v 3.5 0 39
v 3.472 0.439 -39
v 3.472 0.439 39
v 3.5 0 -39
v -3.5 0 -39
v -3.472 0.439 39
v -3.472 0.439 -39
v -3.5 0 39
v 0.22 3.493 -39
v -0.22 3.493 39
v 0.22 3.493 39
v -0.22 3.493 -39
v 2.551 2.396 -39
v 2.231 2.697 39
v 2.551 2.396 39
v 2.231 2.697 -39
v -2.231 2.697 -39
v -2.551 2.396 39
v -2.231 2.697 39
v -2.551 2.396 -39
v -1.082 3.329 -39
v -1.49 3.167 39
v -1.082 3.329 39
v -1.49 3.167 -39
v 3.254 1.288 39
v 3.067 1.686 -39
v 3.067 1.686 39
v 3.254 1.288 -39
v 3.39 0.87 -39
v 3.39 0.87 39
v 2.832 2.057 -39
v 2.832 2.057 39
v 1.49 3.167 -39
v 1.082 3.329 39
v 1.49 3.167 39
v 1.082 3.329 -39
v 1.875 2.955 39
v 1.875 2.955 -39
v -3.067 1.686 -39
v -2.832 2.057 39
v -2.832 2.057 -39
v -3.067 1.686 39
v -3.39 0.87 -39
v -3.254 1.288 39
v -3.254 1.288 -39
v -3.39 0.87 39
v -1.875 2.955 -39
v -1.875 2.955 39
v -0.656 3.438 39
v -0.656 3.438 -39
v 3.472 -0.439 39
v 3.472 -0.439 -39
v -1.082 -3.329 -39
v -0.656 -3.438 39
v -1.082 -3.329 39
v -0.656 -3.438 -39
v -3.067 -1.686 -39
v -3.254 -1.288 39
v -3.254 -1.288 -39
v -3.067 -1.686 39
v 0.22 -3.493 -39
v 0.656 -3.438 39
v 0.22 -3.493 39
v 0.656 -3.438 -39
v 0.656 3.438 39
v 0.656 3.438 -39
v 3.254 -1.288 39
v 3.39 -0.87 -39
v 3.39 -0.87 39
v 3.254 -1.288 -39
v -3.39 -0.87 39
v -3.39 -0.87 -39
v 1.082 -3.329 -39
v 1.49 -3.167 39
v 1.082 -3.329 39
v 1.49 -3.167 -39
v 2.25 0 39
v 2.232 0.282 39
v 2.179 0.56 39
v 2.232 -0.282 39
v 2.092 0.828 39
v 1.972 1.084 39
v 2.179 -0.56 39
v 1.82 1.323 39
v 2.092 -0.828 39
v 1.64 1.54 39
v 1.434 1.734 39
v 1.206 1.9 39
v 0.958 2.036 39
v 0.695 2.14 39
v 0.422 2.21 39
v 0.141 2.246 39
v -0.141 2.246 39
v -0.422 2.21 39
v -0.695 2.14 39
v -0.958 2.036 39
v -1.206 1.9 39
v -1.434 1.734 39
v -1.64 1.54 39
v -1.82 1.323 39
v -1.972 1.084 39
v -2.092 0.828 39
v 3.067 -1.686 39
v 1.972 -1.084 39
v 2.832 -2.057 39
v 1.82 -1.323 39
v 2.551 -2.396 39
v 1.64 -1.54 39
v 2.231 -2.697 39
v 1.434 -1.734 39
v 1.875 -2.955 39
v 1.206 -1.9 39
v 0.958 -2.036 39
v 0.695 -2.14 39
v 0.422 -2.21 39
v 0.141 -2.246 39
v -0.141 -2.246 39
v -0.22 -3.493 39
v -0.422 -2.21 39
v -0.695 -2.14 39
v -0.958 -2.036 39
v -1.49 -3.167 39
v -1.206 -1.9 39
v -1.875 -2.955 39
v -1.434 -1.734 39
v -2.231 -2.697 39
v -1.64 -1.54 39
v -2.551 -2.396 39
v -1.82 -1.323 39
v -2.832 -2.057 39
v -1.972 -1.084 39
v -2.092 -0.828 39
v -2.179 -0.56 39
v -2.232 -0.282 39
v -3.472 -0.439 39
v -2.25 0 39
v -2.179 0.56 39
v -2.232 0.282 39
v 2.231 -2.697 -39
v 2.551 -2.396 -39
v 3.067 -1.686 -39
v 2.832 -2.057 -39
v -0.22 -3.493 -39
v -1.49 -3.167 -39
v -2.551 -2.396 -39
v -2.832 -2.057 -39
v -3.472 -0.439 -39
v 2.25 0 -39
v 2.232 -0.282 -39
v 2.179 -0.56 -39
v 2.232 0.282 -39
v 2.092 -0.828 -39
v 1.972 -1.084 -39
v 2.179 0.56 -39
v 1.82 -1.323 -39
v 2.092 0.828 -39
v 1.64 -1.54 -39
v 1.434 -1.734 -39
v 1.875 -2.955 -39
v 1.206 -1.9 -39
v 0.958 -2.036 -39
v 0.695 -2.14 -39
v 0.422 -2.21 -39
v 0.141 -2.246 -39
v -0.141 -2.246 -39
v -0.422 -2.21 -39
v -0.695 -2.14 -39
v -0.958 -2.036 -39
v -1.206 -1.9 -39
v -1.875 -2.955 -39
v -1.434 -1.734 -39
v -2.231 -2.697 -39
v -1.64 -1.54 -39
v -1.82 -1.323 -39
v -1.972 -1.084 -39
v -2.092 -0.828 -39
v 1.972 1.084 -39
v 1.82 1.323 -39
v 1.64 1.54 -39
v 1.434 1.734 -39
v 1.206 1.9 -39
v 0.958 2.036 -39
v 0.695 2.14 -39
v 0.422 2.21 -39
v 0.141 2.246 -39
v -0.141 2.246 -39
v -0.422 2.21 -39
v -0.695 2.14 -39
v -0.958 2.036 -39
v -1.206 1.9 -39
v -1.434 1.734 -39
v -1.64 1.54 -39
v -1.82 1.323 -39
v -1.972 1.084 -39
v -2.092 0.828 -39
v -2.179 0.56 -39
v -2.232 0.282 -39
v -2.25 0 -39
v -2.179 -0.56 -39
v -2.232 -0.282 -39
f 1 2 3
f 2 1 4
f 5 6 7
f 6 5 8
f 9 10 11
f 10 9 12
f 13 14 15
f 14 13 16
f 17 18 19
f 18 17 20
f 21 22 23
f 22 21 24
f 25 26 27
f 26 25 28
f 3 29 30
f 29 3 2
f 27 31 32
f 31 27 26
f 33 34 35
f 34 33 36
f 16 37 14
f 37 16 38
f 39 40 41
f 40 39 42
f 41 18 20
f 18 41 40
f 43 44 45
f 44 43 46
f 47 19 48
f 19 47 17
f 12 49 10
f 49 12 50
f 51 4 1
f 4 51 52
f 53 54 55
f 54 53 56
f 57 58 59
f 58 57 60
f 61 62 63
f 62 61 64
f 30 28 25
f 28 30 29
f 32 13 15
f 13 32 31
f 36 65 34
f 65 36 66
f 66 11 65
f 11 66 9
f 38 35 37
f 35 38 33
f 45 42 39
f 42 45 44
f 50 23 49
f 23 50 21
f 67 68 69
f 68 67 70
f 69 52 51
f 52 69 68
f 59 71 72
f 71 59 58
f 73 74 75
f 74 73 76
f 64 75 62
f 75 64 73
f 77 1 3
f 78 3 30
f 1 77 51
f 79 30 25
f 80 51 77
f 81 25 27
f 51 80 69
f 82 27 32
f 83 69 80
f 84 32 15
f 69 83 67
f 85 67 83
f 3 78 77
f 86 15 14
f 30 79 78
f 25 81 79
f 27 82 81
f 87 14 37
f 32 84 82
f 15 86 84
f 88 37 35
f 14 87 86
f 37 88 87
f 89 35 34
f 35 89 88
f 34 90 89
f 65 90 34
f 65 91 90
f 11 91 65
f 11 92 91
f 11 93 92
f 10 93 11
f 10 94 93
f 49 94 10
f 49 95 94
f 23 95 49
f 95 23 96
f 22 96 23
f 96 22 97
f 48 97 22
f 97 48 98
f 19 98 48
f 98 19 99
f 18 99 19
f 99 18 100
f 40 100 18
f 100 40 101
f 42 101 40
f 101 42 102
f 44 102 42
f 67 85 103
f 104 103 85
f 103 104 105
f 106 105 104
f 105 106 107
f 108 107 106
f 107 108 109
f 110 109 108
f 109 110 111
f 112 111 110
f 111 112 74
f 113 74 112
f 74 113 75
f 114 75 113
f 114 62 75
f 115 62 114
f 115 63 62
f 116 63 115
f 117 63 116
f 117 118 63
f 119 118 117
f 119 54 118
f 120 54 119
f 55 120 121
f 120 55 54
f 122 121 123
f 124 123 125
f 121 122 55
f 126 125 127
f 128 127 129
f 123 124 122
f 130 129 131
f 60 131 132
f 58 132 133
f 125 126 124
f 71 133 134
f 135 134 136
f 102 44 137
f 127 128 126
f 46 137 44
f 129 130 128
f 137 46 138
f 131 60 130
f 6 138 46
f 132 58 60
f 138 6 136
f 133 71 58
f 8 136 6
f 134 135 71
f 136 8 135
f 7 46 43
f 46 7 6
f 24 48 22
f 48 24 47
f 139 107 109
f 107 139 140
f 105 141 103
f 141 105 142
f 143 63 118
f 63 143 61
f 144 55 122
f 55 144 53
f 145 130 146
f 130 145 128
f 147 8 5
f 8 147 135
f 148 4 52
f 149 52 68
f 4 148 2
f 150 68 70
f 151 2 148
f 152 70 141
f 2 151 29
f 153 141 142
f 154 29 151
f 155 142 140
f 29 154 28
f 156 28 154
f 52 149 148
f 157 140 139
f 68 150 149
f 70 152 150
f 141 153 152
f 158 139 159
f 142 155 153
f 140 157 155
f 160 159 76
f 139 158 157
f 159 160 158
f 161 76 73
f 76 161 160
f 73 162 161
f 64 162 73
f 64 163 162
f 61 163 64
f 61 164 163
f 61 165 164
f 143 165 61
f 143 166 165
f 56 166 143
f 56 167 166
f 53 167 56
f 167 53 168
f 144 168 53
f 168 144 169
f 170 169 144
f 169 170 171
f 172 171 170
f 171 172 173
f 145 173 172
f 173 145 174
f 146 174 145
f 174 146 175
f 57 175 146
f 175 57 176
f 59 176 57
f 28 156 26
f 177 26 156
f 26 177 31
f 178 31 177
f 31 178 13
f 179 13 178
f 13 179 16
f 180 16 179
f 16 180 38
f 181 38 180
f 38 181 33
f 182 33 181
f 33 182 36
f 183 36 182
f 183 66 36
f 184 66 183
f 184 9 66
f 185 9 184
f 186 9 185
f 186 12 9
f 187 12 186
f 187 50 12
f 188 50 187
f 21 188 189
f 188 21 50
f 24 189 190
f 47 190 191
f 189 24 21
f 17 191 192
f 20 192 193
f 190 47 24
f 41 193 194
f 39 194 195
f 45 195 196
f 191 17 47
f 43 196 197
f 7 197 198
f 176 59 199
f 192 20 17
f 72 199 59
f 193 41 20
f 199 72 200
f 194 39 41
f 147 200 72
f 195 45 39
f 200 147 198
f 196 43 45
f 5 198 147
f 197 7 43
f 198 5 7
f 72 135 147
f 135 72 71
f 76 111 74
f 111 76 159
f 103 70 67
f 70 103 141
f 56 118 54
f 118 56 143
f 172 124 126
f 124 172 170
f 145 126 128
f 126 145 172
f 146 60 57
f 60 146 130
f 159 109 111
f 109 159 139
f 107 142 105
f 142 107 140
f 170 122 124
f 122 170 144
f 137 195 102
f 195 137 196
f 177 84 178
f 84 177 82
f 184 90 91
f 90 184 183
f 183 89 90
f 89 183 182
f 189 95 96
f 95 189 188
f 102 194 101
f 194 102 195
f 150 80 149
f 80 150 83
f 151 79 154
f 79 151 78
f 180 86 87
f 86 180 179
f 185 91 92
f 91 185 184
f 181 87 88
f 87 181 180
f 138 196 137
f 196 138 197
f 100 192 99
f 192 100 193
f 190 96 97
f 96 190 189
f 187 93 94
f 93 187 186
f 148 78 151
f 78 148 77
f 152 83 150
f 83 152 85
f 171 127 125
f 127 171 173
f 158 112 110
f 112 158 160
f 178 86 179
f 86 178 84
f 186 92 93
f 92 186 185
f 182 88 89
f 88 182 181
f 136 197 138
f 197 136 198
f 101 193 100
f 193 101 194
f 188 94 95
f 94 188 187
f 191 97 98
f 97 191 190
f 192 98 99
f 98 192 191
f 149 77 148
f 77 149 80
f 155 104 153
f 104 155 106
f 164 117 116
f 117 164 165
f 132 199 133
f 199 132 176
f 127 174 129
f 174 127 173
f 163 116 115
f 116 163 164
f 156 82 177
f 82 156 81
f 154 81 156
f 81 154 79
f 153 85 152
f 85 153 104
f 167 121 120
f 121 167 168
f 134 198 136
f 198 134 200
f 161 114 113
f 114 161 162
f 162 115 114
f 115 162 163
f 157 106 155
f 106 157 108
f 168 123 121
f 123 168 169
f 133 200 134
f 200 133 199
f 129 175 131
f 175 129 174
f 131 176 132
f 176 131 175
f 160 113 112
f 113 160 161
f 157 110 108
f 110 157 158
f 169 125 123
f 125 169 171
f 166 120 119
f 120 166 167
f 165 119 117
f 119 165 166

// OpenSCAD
$fn = 50;


difference() {
	union() {
		translate(v = [0, 0, -39.0000000000]) {
			cylinder(h = 78, r = 3.5000000000);
		}
	}
	union() {
		translate(v = [0, 0, -100.0000000000]) {
			cylinder(h = 200, r = 2.2500000000);
		}
	}
}
